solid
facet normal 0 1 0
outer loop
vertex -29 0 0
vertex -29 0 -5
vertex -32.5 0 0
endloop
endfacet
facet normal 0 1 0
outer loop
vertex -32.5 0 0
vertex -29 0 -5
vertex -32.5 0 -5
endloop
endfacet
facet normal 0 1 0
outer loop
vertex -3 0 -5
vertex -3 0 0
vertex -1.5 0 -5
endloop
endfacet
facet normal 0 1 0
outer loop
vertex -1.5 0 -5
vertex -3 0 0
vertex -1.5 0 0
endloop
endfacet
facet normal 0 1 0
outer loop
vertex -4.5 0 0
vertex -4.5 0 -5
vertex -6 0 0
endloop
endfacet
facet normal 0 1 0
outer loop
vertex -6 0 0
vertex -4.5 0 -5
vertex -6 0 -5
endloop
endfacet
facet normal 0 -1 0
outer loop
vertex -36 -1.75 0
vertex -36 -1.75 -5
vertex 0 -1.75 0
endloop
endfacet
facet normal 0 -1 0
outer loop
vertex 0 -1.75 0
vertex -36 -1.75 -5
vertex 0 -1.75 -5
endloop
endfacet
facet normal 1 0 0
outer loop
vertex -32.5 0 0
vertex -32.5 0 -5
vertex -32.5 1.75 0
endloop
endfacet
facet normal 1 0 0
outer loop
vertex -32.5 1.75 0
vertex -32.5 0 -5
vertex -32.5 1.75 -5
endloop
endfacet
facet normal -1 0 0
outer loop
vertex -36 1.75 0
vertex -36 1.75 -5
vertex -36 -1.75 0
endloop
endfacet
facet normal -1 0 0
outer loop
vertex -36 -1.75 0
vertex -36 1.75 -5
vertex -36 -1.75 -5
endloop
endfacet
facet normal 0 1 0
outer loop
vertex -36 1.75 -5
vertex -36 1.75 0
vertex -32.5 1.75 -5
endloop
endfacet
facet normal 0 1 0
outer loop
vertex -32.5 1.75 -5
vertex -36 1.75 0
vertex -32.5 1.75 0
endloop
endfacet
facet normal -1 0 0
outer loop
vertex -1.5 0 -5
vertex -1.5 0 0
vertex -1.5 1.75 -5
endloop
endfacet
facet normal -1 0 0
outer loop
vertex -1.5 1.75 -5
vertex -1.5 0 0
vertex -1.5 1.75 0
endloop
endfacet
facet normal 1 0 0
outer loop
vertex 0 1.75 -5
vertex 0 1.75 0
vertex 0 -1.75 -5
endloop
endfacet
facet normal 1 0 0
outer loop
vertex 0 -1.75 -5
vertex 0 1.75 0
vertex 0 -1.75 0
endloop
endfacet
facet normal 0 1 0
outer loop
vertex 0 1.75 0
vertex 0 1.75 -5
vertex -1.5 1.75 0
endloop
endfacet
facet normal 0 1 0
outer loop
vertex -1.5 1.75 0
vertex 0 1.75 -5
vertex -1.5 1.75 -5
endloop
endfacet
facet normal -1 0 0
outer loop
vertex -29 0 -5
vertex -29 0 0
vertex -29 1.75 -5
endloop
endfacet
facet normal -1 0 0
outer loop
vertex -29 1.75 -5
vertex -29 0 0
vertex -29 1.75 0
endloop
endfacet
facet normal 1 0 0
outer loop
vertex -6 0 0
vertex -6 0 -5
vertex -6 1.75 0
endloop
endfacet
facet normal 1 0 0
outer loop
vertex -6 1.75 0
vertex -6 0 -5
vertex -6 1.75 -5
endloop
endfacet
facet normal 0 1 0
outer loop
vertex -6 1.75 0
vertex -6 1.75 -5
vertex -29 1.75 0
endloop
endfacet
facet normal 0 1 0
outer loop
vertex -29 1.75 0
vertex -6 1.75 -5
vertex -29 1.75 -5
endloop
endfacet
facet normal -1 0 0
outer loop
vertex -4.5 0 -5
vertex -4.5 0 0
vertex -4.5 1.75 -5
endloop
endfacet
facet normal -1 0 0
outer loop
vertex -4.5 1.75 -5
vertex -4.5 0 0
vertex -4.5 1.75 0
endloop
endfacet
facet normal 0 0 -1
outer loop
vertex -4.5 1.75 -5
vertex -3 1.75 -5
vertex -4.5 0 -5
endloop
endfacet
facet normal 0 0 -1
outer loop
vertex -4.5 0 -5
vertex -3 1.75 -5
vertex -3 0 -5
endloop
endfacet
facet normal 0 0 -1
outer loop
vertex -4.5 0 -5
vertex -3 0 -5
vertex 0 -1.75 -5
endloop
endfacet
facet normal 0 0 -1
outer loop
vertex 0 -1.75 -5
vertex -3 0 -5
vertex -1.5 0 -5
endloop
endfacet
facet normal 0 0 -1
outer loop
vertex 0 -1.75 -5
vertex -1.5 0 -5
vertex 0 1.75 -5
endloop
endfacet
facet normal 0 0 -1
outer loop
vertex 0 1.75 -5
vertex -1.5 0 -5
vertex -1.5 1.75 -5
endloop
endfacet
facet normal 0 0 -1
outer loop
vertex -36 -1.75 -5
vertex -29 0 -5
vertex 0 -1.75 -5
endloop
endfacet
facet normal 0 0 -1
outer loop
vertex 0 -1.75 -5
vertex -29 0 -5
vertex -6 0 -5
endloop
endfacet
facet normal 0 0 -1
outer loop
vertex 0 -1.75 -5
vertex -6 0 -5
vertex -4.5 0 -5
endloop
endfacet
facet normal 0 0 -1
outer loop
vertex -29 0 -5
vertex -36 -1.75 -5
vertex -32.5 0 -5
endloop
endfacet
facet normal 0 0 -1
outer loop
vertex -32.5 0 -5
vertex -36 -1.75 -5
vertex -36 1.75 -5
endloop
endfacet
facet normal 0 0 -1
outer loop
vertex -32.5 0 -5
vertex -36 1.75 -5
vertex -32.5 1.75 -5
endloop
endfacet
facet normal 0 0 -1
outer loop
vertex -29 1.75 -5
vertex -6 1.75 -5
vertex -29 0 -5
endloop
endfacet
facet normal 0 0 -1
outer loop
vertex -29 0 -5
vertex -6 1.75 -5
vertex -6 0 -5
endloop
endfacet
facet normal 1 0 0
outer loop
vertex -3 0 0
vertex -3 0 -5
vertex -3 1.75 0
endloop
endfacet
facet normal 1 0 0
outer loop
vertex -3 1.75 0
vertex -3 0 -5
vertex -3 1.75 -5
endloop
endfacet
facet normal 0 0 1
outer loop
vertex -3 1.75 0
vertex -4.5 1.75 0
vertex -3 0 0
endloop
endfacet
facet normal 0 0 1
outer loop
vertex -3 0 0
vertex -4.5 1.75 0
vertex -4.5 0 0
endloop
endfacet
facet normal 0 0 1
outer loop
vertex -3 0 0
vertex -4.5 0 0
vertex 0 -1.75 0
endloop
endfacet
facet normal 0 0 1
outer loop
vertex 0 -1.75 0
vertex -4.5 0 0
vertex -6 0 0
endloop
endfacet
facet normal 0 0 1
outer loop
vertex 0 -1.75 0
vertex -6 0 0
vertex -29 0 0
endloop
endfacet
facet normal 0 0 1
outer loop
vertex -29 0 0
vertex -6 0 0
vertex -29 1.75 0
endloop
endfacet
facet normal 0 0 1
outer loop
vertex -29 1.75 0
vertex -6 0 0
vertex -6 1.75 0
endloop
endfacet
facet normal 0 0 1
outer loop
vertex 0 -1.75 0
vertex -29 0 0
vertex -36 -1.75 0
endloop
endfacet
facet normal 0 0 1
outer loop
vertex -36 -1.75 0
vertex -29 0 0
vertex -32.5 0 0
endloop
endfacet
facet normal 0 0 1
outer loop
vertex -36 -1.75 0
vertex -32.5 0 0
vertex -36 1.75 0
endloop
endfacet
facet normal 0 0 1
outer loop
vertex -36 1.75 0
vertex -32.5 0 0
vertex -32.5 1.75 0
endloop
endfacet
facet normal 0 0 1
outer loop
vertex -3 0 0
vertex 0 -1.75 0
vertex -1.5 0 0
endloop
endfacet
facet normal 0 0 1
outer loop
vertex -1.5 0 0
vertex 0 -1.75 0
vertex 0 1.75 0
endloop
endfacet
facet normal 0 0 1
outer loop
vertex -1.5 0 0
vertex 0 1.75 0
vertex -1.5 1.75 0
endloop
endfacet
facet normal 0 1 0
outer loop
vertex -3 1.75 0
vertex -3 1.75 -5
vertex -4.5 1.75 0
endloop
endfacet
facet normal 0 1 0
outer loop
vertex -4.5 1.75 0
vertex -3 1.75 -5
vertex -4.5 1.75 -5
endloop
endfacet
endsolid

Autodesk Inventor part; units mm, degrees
ref_plane "YZ Plane" through (0, 0, 0) normal (1, 0, 0) x (0, 1, 0)
ref_plane "XZ Plane" through (0, 0, 0) normal (0, 1, 0) x (-1, 0, 0)
ref_plane "XY Plane" through (0, 0, 0) normal (0, 0, 1) x (1, 0, 0)
sketch "Sketch1" plane through (0, 0, 0) normal (0, 1, 0) x (-1, 0, 0)
  line L0 (0, 0) -> (36, 0)
  line L1 (36, 0) -> (36, -5)
  line L2 (36, -5) -> (0, -5)
  line L3 (0, -5) -> (0, 0)
  line L4 (0, 0) -> (1.5, 0)
  line L5 (1.5, 0) -> (1.5, -5)
  line L6 (1.5, -5) -> (0, -5)
  line L7 (0, -5) -> (0, 0)
  line L8 (1.5, -5) -> (3, -5)
  line L9 (3, -5) -> (3, 0)
  line L10 (3, 0) -> (1.5, 0)
  line L11 (1.5, 0) -> (1.5, -5)
  line L12 (3, 0) -> (4.5, 0)
  line L13 (4.5, 0) -> (4.5, -5)
  line L14 (4.5, -5) -> (3, -5)
  line L15 (3, -5) -> (3, 0)
  line L16 (4.5, -5) -> (6, -5)
  line L17 (6, -5) -> (6, 0)
  line L18 (6, 0) -> (4.5, 0)
  line L19 (4.5, 0) -> (4.5, -5)
  line L20 (36, -5) -> (32.5, -5)
  line L21 (32.5, -5) -> (32.5, 0)
  line L22 (32.5, 0) -> (36, 0)
  line L23 (36, 0) -> (36, -5)
  line L24 (32.5, 0) -> (29, 0)
  line L25 (29, 0) -> (29, -5)
  line L26 (29, -5) -> (32.5, -5)
  line L27 (32.5, -5) -> (32.5, 0)
  dimension "d0" = 36
  dimension "d1" = 5
  dimension "d2" = 1.5
  dimension "d3" = 1.5
  dimension "d4" = 1.5
  dimension "d5" = 1.5
  dimension "d6" = 3.5
  dimension "d7" = 3.5
extrude "Extrusion1" add sketch "Sketch1" along normal blind 1.75 contours L0 L5 L2 L3 | L0 L13 L2 L9 | L0 L25 L2 L17 | L0 L1 L2 L21
extrude "Extrusion2" add sketch "Sketch1" against normal blind 1.75
properties part number "Wall Test"
